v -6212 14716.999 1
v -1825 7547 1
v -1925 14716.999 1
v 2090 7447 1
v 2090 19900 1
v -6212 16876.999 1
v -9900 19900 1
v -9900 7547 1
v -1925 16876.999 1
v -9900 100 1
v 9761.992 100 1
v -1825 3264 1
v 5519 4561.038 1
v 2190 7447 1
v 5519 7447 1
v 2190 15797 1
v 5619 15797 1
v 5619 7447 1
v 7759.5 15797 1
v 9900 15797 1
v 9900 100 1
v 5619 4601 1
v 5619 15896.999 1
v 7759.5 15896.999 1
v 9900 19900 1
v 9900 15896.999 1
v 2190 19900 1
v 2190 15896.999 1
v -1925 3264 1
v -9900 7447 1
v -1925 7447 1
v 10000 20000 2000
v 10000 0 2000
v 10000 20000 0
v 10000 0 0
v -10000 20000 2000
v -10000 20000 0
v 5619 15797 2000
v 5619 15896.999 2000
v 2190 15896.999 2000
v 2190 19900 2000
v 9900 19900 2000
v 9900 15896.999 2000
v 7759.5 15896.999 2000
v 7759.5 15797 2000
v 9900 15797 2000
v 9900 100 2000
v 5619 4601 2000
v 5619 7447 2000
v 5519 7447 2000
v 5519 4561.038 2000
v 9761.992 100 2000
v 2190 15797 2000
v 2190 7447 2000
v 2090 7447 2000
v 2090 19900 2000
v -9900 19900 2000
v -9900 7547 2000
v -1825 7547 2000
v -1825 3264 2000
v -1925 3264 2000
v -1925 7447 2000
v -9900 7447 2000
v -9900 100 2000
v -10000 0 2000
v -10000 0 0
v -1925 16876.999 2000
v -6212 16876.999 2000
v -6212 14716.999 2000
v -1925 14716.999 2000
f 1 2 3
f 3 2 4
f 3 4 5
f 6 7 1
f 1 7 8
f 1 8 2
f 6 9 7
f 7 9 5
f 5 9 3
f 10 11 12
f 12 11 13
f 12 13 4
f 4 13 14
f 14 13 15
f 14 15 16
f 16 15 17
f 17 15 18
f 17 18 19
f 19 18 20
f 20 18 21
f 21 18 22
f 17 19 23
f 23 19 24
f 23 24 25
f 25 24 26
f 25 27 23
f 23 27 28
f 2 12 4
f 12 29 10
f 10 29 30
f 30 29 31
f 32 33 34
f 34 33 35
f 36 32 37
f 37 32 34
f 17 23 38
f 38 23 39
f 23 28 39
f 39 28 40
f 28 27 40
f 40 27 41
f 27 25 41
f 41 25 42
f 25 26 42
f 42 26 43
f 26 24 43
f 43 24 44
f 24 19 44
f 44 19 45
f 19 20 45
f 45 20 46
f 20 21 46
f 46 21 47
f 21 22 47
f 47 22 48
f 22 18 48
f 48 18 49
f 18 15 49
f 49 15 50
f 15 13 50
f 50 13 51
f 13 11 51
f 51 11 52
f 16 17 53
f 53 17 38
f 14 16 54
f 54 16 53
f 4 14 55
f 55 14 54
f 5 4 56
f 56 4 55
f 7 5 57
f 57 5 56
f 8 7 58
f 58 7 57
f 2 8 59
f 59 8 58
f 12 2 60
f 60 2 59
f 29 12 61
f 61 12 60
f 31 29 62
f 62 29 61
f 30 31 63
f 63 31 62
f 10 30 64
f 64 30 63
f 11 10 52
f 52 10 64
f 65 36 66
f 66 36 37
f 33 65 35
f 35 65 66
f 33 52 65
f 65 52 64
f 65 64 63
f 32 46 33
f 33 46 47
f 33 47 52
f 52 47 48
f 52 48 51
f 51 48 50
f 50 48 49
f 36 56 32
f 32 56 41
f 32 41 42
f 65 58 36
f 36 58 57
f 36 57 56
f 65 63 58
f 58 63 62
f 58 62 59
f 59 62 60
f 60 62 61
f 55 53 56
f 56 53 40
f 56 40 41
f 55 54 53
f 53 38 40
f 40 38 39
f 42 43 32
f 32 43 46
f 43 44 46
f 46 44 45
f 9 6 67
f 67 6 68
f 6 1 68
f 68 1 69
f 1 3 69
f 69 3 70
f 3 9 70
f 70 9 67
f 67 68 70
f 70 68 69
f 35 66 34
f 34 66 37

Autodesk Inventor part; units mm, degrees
ref_plane "YZ Plane" through (0, 0, 0) normal (1, 0, 0) x (0, 1, 0)
ref_plane "XZ Plane" through (0, 0, 0) normal (0, 1, 0) x (-1, 0, 0)
ref_plane "XY Plane" through (0, 0, 0) normal (0, 0, 1) x (1, 0, 0)
sketch "Schizzo1" plane through (0, 0, 0) normal (0, 0, 1) x (1, 0, 0)
  line L0 (0, 0) -> (10000, 0)
  line L1 (0, 0) -> (-10000, 0)
  line L2 (-10000, 0) -> (-10000, 20000)
  line L3 (-10000, 20000) -> (10000, 20000)
  line L4 (10000, 20000) -> (10000, 0)
  line L5 (9900, 19900) -> (-9900, 19900)
  line L6 (-9900, 19900) -> (-9900, 100)
  line L7 (-9900, 100) -> (0, 100)
  line L8 (0, 100) -> (9900, 100)
  line L9 (9900, 100) -> (9900, 19900)
  line L10 (-1925, 7447) -> (-9900, 7447)
  line L11 (2190, 7447) -> (2190, 19900)
  line L12 (-1925, 7447) -> (-1925, 3264)
  line L13 (-6212, 14717) -> (-1925, 14717)
  line L14 (-1925, 14717) -> (-1925, 16877)
  line L15 (-1925, 16877) -> (-6212, 16877)
  line L16 (-6212, 16877) -> (-6212, 14717)
  line L17 (9900, 100) -> (5619, 4601)
  line L18 (5619, 4601) -> (5619, 7447)
  line L19 (2190, 15797) -> (5619, 15797)
  line L20 (7759.5, 15797) -> (9900, 15797)
  line L21 (-9900, 7547) -> (-1825, 7547)
  line L22 (-1825, 7547) -> (-1825, 3264)
  line L23 (9827.5407, 31.0823) -> (5519, 4561.0383)
  line L24 (5519, 4561.0383) -> (5519, 7447)
  line L25 (2090, 7447) -> (2090, 19900)
  line L26 (2190, 15897) -> (5619, 15897)
  line L27 (7759.5, 15897) -> (9900, 15897)
  line L28 (-1925, 3264) -> (-1825, 3264)
  line L29 (2090, 7447) -> (2190, 7447)
  line L30 (5519, 7447) -> (5619, 7447)
  line L31 (5619, 15897) -> (5619, 15797)
  line L32 (7759.5, 15897) -> (7759.5, 15797)
  point P0 (9761.9916, 100)
  dimension "d0" = 10000
  dimension "d1" = 10000
  dimension "d2" = 20000
  dimension "d3" = 20000
  dimension "d4" = 100
  dimension "d5" = 100
  dimension "d6" = 100
  dimension "d7" = 100
  dimension "d8" = 100
  dimension "d9" = 100
extrude "Estrusione1" add sketch "Schizzo1" along normal blind 2000 contours L1 L2 L3 L4 L0 | L11 L29 L25 L5 | L9 L20 L32 L27 | L26 L31 L19 L11 | L8 L23 L24 L30 L18 L17 | L21 L22 L28 L12 L10 L6 | L16 L15 L14 L13
sketch "Schizzo2" plane through (0, 0, 0) normal (0, 0, -1) x (-1, 0, 0)
  line L0 (-10000, 0) -> (-10000, 20000) projected
  line L1 (10000, 0) -> (-10000, 0) projected
  line L2 (-10000, 20000) -> (10000, 20000)
  line L3 (10000, 20000) -> (10000, 0)
  line L4 (10000, 0) -> (-10000, 0)
  line L5 (-10000, 0) -> (-10000, 20000)
  point P0 (0, 0)
extrude "Estrusione2" add sketch "Schizzo2" against normal blind 1
properties part number "stanza_nuova_quadrata"
